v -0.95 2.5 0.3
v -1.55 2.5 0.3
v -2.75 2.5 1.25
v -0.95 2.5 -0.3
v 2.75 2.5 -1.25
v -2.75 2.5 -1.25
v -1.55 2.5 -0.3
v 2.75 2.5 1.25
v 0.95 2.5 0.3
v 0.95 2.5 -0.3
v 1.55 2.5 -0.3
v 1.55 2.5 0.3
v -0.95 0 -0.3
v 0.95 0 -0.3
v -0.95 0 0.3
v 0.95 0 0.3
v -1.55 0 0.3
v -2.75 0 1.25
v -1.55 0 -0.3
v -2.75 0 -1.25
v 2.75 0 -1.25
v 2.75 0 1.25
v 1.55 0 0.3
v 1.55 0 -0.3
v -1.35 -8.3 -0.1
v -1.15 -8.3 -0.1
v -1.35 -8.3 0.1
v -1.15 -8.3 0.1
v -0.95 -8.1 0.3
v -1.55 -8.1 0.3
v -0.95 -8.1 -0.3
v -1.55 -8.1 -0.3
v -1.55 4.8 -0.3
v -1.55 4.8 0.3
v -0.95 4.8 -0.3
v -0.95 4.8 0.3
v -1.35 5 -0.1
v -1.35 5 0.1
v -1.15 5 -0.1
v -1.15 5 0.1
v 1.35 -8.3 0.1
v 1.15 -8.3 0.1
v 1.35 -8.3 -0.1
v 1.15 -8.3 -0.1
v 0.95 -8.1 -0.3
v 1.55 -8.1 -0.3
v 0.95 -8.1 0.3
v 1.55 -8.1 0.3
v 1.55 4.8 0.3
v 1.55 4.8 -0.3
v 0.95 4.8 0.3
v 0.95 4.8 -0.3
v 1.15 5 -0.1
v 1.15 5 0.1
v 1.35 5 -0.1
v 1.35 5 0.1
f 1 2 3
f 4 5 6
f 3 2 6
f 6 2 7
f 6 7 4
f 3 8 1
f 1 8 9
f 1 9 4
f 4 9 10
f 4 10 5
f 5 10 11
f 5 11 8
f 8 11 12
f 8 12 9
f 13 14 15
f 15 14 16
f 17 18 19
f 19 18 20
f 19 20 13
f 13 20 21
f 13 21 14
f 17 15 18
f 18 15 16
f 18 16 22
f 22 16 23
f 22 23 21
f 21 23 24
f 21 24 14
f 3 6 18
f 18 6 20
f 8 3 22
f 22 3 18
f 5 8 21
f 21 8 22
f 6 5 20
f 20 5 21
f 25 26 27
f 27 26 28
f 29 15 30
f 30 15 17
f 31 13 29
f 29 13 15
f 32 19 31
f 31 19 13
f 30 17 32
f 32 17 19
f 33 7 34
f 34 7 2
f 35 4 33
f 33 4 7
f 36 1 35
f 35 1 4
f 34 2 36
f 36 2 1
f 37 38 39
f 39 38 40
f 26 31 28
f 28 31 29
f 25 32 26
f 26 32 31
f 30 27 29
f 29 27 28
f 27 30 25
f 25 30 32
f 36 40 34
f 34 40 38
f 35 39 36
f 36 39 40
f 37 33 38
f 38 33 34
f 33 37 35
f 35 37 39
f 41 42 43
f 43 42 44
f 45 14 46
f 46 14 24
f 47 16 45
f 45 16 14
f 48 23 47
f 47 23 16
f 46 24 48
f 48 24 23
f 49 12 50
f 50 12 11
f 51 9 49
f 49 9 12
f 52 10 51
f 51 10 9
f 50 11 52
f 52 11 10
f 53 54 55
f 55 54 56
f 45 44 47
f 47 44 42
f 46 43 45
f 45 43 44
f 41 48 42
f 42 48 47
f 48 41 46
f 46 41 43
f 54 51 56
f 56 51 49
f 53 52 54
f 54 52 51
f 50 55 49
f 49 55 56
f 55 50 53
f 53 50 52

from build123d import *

# Parameters (mm, degrees)
SKETCH1_W                = 5.5
SKETCH1_H                = 2.5
BOSS_EXTRUDE1_DEPTH      = 2.5
BOSS_EXTRUDE2_START      = -10.8
SKETCH2_W                = 0.6
SKETCH2_H                = 0.6
BOSS_EXTRUDE2_DEPTH      = 13.3
CHAMFER1_SIZE            = 0.2
CHAMFER1_OF_MIRROR1_SIZE = 0.2


with BuildPart() as part:
    # Sketch1 → Boss-Extrude1 (new body)
    with BuildSketch(Plane(origin=(0, 0, 0), x_dir=(1, 0, 0), z_dir=(0, 1, 0))):
        Rectangle(SKETCH1_W, SKETCH1_H)
    extrude(amount=BOSS_EXTRUDE1_DEPTH)

    # Sketch2 → Boss-Extrude2 (add)
    with BuildSketch(Plane(origin=(0, 2.5, 0), x_dir=(1, 0, 0), z_dir=(0, 1, 0)).offset(BOSS_EXTRUDE2_START)):
        with Locations((-1.25, 0)):
            Rectangle(SKETCH2_W, SKETCH2_H)
    boss_extrude2 = extrude(amount=BOSS_EXTRUDE2_DEPTH)

    # Chamfer1
    chamfer1_edges = [part.edges().sort_by_distance(p)[0] for p in [
        (-1.55, -8.3, 0),
        (-1.25, -8.3, -0.3),
        (-0.95, -8.3, 0),
        (-1.25, -8.3, 0.3),
        (-1.55, 5, 0),
        (-1.25, 5, 0.3),
        (-0.95, 5, 0),
        (-1.25, 5, -0.3),
    ]]
    chamfer(chamfer1_edges, length=CHAMFER1_SIZE)

    # Mirror1: Boss-Extrude2 across plane
    add(boss_extrude2.mirror(Plane(origin=(0, 0, 0), x_dir=(0, 0, 1), z_dir=(1, 0, 0))))

    # Chamfer1 of Mirror1
    chamfer1_of_mirror1_edges = [part.edges().sort_by_distance(p)[0] for p in [
        (1.55, -8.3, 0),
        (1.25, -8.3, -0.3),
        (0.95, -8.3, 0),
        (1.25, -8.3, 0.3),
        (1.55, 5, 0),
        (1.25, 5, 0.3),
        (0.95, 5, 0),
        (1.25, 5, -0.3),
    ]]
    chamfer(chamfer1_of_mirror1_edges, length=CHAMFER1_OF_MIRROR1_SIZE)


solid = part.part
